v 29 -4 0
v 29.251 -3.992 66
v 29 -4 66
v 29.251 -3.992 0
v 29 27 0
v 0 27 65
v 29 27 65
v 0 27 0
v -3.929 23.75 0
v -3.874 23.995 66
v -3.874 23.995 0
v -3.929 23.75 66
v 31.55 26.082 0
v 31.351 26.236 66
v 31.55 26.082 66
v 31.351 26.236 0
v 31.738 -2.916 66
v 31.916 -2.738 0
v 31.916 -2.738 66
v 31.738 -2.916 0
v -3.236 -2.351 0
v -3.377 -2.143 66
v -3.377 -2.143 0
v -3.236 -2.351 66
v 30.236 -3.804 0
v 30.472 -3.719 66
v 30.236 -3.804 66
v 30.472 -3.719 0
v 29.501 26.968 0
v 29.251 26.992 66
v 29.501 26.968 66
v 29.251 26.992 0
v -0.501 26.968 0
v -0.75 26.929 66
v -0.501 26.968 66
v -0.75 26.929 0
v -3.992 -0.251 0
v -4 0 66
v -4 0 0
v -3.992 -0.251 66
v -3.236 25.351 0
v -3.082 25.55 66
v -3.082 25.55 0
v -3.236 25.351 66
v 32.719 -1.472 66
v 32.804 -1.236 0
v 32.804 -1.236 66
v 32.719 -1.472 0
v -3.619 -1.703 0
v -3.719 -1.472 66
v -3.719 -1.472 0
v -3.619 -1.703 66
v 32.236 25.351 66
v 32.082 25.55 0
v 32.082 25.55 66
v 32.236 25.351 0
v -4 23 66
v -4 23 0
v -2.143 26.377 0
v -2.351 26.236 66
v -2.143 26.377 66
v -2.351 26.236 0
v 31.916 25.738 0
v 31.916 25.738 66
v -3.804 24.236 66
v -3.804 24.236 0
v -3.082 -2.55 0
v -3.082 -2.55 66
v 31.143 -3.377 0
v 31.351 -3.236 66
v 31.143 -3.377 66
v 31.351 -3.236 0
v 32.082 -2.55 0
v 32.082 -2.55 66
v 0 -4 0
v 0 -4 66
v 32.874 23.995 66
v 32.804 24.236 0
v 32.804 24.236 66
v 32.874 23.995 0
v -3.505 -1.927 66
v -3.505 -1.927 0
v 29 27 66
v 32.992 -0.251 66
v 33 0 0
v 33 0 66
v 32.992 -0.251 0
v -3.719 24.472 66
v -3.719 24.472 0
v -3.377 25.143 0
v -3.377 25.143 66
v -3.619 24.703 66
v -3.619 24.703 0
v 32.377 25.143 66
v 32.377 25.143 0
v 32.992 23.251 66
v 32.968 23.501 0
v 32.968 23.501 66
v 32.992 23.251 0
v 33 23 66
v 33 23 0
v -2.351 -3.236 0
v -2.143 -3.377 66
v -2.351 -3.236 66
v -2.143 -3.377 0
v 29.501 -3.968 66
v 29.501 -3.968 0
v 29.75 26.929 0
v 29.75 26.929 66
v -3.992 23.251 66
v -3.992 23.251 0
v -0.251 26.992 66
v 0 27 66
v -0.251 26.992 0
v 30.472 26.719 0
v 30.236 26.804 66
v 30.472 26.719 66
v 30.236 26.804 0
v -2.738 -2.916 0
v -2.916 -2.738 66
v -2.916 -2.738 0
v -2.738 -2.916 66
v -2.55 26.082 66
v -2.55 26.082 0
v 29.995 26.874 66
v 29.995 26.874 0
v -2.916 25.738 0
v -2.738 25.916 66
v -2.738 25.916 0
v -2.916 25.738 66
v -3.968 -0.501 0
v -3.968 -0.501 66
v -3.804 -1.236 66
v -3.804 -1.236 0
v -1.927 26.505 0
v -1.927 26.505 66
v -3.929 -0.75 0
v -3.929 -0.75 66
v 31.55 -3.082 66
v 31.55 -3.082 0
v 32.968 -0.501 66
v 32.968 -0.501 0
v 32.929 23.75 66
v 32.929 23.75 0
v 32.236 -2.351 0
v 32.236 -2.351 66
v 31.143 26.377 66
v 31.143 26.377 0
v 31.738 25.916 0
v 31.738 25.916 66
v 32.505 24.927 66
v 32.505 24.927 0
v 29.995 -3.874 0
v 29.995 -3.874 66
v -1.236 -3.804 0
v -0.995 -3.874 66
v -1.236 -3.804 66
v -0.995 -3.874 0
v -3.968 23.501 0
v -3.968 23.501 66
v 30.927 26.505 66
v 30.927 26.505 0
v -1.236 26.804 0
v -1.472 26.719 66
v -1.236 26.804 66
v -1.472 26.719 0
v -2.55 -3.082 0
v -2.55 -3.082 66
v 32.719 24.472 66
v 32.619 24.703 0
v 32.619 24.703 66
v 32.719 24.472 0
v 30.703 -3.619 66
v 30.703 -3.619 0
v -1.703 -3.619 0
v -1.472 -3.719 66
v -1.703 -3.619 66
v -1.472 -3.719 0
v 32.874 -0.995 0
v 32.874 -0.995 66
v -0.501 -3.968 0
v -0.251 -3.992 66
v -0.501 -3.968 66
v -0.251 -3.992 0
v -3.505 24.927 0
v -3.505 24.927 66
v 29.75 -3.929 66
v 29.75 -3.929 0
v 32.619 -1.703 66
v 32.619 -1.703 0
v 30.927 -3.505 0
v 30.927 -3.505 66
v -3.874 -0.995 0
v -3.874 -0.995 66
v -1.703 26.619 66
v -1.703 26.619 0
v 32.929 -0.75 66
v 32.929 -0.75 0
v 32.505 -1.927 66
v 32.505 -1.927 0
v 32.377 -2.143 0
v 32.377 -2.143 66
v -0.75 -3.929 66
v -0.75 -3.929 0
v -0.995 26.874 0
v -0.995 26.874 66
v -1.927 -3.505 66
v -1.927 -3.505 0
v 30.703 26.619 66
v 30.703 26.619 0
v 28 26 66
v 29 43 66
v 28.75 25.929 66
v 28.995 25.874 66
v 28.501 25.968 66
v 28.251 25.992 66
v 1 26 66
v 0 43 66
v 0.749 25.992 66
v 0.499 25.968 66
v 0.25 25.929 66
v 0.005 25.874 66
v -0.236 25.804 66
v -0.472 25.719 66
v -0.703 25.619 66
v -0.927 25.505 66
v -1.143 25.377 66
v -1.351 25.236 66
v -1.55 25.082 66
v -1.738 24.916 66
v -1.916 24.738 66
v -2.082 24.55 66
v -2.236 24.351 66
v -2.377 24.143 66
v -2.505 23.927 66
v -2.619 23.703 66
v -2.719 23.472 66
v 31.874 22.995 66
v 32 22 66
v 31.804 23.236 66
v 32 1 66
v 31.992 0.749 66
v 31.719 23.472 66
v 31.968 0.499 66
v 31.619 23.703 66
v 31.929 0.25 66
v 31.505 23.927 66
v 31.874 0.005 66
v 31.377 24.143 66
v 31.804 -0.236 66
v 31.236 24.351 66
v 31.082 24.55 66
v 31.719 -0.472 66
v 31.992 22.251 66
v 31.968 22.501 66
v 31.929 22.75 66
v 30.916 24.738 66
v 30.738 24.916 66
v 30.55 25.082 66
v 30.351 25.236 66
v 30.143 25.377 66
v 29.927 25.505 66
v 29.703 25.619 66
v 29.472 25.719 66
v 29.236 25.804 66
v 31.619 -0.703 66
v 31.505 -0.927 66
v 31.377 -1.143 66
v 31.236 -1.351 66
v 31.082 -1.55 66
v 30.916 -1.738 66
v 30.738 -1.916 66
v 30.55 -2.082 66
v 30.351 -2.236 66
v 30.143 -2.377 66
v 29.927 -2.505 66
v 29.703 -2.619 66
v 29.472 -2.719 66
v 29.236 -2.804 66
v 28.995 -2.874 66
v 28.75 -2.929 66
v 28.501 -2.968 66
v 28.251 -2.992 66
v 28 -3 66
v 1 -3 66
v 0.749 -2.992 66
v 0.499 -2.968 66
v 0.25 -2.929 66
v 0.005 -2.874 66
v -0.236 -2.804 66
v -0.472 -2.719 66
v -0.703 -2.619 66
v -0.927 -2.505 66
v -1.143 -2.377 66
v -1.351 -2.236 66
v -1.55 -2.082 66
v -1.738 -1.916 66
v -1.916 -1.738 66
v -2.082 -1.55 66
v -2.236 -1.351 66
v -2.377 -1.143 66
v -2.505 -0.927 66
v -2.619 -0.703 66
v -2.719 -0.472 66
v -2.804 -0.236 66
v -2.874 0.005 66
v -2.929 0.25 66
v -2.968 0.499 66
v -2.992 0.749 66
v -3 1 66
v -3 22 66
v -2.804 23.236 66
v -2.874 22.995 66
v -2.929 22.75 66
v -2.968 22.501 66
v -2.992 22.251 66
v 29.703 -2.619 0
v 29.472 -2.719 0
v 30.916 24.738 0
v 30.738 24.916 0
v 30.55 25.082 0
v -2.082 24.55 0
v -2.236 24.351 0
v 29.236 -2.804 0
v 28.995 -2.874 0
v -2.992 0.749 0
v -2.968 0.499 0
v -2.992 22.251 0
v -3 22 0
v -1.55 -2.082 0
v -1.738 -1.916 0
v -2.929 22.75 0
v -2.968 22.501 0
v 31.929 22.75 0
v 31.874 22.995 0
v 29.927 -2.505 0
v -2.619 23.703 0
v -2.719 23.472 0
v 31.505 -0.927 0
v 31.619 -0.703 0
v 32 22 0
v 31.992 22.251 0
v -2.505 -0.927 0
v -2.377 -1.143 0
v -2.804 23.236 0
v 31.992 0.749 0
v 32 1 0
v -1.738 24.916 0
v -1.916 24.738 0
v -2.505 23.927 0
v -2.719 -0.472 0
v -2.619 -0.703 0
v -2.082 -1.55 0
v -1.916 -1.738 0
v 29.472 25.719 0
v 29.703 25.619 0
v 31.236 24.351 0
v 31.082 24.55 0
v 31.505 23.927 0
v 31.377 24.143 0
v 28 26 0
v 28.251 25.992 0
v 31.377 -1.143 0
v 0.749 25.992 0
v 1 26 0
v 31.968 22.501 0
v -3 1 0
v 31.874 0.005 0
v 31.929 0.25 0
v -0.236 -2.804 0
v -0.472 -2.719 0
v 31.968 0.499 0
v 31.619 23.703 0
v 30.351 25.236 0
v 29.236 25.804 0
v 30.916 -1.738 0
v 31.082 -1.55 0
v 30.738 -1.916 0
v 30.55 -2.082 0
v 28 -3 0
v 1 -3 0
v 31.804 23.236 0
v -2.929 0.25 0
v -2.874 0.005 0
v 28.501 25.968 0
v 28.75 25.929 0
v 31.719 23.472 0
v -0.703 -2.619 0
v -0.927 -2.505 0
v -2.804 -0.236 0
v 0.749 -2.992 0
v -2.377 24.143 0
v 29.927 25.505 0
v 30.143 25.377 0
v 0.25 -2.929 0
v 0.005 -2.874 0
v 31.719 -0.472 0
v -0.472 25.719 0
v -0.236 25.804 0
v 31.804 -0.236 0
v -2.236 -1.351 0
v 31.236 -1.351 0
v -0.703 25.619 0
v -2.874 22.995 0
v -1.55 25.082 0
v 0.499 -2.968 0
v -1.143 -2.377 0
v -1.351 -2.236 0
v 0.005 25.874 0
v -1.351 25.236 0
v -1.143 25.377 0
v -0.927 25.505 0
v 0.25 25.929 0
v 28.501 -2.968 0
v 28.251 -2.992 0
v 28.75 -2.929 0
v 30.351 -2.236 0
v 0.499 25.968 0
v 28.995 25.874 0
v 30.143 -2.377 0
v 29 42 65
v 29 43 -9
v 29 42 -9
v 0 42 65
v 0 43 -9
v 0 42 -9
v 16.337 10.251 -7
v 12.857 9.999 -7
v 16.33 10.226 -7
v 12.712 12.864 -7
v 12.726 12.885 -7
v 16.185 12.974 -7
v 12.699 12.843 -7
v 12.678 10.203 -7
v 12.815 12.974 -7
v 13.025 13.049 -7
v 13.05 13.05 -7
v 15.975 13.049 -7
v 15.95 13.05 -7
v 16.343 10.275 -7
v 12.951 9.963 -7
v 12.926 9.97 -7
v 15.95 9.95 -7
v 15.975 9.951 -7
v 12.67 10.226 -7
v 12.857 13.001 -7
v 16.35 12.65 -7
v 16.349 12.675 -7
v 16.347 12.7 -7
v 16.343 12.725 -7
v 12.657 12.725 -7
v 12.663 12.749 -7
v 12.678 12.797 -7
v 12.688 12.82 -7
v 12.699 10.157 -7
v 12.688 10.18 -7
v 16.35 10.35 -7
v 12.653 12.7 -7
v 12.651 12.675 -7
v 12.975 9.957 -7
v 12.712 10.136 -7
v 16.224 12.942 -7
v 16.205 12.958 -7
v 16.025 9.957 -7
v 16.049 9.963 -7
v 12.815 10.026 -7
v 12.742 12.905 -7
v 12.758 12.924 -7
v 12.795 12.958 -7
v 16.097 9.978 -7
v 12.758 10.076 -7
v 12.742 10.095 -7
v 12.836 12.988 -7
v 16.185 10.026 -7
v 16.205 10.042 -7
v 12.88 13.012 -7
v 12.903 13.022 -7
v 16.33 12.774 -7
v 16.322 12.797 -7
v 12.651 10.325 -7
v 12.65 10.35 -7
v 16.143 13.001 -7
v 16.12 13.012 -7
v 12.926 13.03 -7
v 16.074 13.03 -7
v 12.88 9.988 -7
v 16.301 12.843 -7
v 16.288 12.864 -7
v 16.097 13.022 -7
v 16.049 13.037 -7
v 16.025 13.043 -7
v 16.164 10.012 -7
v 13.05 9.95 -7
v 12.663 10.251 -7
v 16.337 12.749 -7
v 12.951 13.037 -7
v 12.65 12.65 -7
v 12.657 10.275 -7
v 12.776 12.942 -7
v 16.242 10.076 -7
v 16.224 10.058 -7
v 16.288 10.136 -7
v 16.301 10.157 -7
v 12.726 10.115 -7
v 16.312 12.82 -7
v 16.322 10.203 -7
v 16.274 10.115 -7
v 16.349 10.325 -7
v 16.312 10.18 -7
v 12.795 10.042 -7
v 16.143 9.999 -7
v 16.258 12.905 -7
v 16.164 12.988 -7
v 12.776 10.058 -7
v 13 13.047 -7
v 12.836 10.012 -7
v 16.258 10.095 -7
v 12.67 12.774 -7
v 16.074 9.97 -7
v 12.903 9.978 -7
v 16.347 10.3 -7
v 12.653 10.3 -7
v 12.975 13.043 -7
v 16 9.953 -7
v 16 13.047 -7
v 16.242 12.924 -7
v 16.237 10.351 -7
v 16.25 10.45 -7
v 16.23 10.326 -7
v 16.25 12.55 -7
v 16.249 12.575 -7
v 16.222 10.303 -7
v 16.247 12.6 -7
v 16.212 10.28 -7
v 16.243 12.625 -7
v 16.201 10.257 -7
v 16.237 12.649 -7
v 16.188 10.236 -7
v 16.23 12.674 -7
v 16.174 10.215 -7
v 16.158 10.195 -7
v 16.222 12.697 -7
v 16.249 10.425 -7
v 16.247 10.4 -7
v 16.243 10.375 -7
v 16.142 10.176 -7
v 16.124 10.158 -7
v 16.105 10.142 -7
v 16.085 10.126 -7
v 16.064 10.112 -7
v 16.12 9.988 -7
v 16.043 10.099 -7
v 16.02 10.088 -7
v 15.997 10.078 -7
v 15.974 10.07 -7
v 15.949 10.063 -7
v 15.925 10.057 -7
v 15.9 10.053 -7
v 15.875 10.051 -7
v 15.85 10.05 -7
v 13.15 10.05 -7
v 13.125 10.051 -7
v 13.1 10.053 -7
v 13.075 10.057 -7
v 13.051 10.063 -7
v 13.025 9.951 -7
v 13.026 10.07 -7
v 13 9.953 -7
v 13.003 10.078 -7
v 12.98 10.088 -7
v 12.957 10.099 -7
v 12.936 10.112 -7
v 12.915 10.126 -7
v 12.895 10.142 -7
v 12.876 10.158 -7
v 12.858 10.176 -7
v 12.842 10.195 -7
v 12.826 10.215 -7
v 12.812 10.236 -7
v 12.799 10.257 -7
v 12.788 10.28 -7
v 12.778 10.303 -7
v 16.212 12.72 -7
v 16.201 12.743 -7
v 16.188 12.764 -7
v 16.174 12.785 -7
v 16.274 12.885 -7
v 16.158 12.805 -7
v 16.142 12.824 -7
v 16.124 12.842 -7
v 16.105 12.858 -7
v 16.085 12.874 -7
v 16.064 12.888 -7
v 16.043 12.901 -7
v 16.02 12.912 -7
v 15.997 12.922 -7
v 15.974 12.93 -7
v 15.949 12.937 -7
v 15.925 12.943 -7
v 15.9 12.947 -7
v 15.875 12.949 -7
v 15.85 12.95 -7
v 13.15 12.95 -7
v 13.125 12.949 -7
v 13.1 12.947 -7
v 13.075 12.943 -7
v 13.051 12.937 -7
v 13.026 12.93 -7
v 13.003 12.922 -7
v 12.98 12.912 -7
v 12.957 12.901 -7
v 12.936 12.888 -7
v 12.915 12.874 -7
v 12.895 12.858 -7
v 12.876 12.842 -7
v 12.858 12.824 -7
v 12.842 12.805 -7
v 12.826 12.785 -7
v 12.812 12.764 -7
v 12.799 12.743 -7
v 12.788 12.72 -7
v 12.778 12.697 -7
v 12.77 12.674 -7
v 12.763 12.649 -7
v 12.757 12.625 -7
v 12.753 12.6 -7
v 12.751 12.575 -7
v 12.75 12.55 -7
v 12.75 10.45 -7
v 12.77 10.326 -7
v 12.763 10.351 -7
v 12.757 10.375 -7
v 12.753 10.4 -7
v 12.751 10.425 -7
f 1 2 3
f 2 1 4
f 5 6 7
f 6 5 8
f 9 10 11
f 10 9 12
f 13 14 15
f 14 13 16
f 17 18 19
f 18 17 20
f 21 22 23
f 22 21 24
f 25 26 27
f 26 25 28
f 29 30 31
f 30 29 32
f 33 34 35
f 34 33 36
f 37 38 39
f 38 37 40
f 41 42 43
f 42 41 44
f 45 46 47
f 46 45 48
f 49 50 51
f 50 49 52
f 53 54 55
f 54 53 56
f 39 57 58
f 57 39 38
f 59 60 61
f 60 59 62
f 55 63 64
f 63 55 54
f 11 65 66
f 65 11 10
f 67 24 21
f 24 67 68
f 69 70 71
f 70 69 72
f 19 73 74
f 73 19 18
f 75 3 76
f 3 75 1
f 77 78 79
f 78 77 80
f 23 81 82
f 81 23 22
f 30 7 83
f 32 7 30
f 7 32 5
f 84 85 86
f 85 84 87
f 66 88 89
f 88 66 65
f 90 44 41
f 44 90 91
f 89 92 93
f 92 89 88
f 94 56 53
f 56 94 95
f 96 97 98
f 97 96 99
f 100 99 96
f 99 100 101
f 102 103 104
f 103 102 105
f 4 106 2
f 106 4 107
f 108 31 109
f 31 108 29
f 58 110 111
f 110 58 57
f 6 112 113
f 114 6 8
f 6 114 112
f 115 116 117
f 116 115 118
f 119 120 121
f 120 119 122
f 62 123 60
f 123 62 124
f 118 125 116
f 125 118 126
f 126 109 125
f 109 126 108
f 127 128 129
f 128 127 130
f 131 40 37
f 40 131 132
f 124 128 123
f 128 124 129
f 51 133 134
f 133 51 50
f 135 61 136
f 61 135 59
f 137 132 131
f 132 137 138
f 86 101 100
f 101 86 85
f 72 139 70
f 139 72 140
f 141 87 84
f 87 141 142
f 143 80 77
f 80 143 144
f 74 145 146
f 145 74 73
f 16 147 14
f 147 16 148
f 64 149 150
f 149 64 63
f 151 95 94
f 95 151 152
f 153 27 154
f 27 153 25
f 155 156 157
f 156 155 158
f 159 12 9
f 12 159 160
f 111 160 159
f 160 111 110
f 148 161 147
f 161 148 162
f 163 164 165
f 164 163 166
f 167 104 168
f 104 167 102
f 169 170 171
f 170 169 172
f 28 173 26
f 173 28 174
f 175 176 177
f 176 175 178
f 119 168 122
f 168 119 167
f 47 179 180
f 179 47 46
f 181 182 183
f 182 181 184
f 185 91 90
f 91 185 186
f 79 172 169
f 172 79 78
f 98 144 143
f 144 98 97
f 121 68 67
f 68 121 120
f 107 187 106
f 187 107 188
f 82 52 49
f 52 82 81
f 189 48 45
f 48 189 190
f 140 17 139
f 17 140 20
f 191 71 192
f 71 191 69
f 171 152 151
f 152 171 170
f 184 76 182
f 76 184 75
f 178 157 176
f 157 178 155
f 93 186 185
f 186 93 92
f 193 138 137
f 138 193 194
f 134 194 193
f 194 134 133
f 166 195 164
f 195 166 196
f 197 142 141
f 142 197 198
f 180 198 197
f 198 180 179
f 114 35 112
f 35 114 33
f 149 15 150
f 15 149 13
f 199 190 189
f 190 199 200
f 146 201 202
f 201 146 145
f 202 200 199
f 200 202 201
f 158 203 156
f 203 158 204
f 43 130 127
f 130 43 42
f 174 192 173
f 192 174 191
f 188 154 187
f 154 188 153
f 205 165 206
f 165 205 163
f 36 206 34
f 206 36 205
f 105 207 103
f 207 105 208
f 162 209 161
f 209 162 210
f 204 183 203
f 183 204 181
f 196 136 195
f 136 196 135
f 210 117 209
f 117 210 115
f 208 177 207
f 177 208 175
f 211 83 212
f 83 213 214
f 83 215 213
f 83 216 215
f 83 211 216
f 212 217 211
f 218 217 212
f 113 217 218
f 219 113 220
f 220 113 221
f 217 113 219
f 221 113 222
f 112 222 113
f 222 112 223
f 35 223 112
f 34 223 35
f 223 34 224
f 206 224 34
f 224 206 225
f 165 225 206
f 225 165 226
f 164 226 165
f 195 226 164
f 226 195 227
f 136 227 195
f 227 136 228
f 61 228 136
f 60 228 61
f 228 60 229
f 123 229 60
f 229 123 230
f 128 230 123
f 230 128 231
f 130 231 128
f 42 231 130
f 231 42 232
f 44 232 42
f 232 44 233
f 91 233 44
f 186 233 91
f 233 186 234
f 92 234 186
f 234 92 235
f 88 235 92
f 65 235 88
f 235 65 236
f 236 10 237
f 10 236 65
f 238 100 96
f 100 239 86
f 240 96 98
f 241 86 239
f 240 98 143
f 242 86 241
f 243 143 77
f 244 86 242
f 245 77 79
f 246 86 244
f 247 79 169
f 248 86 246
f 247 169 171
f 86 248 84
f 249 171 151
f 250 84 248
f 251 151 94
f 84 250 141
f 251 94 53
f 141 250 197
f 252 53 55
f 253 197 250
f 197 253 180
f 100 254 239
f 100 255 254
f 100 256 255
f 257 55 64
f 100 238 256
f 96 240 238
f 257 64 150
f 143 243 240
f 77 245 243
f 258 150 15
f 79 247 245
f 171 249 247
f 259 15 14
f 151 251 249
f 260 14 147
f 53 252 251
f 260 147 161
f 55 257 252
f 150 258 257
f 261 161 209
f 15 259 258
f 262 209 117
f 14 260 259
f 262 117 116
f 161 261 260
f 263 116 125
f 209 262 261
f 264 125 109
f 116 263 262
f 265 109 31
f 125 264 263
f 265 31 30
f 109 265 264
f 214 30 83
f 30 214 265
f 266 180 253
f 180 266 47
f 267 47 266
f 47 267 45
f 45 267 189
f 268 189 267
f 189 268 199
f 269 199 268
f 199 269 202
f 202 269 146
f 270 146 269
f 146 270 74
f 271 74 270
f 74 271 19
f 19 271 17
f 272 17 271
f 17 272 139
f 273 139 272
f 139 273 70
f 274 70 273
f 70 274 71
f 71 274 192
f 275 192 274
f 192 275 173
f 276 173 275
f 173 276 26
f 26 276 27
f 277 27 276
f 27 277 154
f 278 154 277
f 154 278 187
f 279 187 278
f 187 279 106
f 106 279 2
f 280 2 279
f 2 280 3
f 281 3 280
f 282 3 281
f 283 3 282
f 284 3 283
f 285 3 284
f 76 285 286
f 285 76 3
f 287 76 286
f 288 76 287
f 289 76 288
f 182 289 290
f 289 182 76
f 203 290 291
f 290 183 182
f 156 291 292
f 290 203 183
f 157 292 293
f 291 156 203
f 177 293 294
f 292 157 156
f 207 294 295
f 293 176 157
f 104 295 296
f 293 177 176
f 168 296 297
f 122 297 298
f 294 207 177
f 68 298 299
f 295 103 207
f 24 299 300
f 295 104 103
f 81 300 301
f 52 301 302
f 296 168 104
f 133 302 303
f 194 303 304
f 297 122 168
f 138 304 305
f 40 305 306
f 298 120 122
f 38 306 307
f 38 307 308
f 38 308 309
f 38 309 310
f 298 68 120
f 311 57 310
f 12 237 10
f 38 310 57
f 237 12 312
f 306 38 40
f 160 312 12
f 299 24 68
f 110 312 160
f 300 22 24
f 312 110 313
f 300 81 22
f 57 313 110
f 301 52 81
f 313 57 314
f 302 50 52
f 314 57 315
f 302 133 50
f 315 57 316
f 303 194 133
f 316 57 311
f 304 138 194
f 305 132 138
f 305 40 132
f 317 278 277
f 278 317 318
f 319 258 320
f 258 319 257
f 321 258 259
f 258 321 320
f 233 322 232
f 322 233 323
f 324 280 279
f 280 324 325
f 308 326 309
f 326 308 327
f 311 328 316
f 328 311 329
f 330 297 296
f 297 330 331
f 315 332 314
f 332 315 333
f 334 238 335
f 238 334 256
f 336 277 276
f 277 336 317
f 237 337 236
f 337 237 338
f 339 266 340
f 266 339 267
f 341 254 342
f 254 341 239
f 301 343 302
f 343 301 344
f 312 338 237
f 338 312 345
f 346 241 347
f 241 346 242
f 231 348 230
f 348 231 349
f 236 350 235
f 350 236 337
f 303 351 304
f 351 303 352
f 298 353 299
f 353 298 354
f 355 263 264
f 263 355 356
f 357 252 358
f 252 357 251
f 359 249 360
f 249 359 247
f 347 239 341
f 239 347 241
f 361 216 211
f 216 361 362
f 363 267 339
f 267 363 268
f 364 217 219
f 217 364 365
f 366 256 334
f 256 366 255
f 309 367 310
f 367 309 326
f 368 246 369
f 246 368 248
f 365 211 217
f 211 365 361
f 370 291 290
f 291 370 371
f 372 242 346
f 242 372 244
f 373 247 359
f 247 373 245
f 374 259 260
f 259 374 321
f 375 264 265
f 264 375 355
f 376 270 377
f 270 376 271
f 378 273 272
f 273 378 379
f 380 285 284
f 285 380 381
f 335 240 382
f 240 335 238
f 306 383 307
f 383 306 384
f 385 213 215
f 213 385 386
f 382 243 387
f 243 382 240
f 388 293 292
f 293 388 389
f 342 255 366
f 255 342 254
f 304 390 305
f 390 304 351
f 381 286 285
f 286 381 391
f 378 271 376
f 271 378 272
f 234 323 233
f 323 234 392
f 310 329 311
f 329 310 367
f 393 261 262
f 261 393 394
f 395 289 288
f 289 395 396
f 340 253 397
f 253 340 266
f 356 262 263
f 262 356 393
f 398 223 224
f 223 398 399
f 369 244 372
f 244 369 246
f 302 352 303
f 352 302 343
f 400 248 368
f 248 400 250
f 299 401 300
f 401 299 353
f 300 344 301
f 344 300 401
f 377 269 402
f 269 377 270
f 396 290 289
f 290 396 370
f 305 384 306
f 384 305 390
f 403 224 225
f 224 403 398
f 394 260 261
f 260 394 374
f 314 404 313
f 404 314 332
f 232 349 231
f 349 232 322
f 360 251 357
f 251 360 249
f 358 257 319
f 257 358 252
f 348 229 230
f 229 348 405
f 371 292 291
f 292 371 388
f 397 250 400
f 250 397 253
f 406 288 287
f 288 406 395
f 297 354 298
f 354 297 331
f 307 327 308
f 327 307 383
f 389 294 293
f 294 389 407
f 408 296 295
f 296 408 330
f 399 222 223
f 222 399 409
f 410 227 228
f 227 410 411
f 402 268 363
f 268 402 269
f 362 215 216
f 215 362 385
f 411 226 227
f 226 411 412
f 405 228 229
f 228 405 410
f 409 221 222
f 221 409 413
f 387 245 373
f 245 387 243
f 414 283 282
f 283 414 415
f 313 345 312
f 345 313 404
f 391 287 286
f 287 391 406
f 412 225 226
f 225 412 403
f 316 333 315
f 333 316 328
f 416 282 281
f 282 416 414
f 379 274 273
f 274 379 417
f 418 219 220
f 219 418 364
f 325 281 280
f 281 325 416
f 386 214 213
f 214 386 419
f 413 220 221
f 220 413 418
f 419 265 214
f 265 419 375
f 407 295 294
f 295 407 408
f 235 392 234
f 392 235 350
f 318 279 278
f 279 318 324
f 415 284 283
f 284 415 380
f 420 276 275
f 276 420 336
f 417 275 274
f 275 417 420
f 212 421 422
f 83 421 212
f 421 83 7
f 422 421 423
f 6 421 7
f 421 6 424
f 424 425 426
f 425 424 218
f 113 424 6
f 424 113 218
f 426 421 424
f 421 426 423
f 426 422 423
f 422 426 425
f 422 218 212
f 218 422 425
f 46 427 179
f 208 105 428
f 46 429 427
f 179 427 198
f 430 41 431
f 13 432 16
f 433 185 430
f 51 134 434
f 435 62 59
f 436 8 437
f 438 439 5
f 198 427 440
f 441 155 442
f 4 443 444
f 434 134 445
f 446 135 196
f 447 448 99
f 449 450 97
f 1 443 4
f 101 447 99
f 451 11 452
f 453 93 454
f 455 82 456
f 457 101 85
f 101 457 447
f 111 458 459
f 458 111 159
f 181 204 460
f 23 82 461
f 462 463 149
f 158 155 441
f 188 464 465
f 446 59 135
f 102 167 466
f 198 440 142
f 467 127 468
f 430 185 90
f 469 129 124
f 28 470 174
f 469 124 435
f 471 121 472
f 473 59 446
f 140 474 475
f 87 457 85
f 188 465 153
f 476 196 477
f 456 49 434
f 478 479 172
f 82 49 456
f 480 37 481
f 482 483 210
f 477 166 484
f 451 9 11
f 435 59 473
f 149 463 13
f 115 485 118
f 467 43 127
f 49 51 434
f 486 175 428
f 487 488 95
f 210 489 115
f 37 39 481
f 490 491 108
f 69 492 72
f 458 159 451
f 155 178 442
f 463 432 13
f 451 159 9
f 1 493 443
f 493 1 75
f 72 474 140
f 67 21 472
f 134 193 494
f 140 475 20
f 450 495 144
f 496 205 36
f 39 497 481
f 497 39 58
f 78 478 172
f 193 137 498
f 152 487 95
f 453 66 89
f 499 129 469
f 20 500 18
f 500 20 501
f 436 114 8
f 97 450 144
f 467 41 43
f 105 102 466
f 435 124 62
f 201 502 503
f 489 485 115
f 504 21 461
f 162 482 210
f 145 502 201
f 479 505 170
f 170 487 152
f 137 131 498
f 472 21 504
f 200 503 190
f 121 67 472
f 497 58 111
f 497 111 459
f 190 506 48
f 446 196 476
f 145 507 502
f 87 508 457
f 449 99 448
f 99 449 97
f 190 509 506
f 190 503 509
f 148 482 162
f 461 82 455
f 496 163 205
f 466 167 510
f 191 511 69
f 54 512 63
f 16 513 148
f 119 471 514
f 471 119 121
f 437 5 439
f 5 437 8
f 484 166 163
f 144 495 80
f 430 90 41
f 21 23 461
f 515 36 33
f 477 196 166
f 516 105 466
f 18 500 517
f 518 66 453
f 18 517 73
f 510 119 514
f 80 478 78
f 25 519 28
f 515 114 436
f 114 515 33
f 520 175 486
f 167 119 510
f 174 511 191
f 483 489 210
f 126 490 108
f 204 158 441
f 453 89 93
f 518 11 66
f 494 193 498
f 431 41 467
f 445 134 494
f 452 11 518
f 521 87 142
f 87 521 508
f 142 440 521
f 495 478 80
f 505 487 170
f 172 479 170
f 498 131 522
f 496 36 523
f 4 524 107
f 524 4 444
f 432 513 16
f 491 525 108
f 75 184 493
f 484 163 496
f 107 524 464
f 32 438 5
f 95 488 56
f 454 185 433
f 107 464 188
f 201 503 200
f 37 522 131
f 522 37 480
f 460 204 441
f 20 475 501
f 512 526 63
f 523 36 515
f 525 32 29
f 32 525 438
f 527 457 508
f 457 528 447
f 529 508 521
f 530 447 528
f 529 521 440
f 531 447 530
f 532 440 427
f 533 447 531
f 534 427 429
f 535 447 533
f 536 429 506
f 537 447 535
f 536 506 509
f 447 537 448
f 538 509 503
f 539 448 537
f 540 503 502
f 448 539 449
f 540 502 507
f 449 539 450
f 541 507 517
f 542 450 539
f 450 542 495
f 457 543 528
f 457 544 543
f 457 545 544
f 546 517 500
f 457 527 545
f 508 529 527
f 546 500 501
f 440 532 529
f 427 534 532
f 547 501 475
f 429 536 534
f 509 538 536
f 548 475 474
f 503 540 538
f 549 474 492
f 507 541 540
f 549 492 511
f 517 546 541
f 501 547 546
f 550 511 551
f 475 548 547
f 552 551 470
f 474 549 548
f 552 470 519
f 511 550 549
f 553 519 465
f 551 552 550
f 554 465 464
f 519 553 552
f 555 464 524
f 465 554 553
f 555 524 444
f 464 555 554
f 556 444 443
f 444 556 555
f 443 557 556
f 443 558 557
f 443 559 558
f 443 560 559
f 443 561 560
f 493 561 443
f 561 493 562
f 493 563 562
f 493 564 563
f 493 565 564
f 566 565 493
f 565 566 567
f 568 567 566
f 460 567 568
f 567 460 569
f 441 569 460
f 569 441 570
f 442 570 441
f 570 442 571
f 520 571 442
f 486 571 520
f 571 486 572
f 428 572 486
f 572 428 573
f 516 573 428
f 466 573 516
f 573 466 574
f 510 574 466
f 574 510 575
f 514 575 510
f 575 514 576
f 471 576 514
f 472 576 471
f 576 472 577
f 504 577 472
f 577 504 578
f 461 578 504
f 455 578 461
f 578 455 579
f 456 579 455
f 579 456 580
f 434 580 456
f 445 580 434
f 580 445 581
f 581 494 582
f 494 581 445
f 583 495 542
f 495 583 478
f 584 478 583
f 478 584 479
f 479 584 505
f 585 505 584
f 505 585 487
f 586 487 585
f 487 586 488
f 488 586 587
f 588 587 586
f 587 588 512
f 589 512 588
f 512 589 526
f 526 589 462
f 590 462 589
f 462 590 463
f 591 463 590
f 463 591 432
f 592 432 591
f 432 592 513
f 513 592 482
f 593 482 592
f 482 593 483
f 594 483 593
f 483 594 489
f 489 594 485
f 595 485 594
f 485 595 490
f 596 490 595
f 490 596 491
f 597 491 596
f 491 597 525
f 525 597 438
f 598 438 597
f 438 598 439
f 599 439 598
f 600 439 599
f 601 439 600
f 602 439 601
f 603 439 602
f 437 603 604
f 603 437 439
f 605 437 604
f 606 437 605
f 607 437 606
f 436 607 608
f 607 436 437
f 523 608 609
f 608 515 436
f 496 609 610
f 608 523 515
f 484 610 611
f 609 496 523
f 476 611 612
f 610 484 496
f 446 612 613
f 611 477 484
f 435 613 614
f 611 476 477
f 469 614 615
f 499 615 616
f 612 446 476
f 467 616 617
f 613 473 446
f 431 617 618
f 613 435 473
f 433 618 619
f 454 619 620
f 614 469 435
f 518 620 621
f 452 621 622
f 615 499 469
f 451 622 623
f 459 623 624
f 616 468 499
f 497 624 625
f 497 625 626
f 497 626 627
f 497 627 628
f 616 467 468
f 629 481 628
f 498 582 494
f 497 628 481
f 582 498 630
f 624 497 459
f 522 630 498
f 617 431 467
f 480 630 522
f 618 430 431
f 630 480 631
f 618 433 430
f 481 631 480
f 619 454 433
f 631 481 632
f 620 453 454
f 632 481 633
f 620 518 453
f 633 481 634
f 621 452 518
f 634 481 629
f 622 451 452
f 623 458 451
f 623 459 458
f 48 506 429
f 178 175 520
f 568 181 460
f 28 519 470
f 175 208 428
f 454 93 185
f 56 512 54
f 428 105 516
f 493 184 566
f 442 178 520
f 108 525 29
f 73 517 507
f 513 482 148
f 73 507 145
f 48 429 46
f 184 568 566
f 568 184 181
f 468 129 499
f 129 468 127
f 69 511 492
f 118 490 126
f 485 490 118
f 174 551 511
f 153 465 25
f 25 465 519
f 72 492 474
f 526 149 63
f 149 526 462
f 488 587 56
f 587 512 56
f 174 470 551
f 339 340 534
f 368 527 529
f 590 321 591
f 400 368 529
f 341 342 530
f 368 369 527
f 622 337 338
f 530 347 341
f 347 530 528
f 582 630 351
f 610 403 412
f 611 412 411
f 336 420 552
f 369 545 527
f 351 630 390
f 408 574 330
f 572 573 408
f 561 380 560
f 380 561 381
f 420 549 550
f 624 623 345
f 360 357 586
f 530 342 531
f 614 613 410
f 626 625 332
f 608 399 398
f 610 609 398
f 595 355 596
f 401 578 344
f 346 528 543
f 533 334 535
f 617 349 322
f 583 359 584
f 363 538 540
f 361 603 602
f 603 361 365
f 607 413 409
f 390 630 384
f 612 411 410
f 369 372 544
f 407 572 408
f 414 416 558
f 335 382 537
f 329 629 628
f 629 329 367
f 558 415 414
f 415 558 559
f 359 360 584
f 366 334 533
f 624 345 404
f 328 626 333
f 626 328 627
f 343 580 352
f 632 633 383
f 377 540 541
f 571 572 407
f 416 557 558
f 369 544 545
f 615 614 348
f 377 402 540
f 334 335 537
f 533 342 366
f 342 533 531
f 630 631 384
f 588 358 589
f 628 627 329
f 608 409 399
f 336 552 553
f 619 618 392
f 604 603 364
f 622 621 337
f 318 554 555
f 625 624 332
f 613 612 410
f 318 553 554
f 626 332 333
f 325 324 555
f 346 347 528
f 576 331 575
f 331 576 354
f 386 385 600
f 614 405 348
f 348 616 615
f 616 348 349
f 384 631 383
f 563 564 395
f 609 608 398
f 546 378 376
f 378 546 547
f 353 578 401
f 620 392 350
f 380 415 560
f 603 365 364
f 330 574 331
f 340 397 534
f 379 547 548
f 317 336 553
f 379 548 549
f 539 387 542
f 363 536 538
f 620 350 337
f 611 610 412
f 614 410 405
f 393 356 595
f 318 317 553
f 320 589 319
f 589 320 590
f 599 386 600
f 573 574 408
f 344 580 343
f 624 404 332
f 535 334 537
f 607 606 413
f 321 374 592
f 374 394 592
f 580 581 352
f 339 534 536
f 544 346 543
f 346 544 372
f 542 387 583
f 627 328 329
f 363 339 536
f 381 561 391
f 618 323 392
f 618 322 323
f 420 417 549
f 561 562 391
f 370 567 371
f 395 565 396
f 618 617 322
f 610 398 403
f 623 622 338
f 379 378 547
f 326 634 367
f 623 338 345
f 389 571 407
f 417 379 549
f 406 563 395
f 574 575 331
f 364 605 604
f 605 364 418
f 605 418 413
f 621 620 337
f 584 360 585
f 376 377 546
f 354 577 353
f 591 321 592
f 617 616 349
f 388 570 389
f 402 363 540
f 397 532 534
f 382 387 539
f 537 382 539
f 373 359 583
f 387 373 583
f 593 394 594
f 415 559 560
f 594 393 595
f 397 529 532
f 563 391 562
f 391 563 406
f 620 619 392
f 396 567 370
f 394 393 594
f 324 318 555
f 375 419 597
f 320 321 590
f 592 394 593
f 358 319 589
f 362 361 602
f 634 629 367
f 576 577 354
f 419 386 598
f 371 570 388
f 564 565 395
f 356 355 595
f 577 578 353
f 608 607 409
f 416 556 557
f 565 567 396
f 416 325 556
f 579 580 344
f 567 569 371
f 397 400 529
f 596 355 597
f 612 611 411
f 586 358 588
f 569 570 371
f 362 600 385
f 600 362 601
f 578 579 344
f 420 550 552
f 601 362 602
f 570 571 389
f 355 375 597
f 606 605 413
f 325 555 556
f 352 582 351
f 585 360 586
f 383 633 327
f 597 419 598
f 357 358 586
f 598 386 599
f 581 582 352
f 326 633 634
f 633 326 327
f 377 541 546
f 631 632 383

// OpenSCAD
wall_thickness = 1;

tube_length = 31 + 2 * wall_thickness;
tube_depth = 25 + 2 * wall_thickness;
tube_height = 65;
cap_height = 7;

holder_depth = 15;
holder_height = 75;

minkowski_radius = 4;

module tube_shape(length, depth, height, translation) {
    minkowski() {
        translate([translation, translation, 0])
            cube([length - minkowski_radius, depth - minkowski_radius, height]);
        cylinder(r=minkowski_radius, h=1);
    };    
}

module tube(length, depth, height) {
    $fn=100;
    difference() {
        // outer shape
        tube_shape(length, depth, height, 0);
        
        // inner shape
        tube_shape(length - 2 * wall_thickness, depth - 2 * wall_thickness, height, wall_thickness);
    };
}

module holder(depth, height) {
    // horizontal part
    translate([0, tube_depth, tube_height])
        cube([tube_length - minkowski_radius, depth, wall_thickness]);

    // vertical part
    translate([0, tube_depth + depth, tube_height - height + wall_thickness])
        cube([tube_length - minkowski_radius, wall_thickness, height]);
}

module cap_shape(length, depth, height, translation) {
    translate([0.5 * (length - minkowski_radius) + translation, 0.5 * (depth - minkowski_radius) + translation, 0])
    rotate([180, 0, 0]) 
    linear_extrude(height = height, convexity = 10, scale=0.1, $fn=100)
    minkowski() {
        square([length - minkowski_radius, depth - minkowski_radius], center=true);
        circle(r=minkowski_radius);
    }
    cylinder(r=1);
}

module cap(length, depth, height) {
    $fn=100;
    difference() {
        // outer shape
        cap_shape(length, depth, height, 0);
        
        // inner shape
        cap_shape(length - 2 * wall_thickness, depth - 2 * wall_thickness, height, wall_thickness);
    };
}

tube(tube_length, tube_depth, tube_height);
holder(holder_depth, holder_height);
cap(tube_length, tube_depth, cap_height);
